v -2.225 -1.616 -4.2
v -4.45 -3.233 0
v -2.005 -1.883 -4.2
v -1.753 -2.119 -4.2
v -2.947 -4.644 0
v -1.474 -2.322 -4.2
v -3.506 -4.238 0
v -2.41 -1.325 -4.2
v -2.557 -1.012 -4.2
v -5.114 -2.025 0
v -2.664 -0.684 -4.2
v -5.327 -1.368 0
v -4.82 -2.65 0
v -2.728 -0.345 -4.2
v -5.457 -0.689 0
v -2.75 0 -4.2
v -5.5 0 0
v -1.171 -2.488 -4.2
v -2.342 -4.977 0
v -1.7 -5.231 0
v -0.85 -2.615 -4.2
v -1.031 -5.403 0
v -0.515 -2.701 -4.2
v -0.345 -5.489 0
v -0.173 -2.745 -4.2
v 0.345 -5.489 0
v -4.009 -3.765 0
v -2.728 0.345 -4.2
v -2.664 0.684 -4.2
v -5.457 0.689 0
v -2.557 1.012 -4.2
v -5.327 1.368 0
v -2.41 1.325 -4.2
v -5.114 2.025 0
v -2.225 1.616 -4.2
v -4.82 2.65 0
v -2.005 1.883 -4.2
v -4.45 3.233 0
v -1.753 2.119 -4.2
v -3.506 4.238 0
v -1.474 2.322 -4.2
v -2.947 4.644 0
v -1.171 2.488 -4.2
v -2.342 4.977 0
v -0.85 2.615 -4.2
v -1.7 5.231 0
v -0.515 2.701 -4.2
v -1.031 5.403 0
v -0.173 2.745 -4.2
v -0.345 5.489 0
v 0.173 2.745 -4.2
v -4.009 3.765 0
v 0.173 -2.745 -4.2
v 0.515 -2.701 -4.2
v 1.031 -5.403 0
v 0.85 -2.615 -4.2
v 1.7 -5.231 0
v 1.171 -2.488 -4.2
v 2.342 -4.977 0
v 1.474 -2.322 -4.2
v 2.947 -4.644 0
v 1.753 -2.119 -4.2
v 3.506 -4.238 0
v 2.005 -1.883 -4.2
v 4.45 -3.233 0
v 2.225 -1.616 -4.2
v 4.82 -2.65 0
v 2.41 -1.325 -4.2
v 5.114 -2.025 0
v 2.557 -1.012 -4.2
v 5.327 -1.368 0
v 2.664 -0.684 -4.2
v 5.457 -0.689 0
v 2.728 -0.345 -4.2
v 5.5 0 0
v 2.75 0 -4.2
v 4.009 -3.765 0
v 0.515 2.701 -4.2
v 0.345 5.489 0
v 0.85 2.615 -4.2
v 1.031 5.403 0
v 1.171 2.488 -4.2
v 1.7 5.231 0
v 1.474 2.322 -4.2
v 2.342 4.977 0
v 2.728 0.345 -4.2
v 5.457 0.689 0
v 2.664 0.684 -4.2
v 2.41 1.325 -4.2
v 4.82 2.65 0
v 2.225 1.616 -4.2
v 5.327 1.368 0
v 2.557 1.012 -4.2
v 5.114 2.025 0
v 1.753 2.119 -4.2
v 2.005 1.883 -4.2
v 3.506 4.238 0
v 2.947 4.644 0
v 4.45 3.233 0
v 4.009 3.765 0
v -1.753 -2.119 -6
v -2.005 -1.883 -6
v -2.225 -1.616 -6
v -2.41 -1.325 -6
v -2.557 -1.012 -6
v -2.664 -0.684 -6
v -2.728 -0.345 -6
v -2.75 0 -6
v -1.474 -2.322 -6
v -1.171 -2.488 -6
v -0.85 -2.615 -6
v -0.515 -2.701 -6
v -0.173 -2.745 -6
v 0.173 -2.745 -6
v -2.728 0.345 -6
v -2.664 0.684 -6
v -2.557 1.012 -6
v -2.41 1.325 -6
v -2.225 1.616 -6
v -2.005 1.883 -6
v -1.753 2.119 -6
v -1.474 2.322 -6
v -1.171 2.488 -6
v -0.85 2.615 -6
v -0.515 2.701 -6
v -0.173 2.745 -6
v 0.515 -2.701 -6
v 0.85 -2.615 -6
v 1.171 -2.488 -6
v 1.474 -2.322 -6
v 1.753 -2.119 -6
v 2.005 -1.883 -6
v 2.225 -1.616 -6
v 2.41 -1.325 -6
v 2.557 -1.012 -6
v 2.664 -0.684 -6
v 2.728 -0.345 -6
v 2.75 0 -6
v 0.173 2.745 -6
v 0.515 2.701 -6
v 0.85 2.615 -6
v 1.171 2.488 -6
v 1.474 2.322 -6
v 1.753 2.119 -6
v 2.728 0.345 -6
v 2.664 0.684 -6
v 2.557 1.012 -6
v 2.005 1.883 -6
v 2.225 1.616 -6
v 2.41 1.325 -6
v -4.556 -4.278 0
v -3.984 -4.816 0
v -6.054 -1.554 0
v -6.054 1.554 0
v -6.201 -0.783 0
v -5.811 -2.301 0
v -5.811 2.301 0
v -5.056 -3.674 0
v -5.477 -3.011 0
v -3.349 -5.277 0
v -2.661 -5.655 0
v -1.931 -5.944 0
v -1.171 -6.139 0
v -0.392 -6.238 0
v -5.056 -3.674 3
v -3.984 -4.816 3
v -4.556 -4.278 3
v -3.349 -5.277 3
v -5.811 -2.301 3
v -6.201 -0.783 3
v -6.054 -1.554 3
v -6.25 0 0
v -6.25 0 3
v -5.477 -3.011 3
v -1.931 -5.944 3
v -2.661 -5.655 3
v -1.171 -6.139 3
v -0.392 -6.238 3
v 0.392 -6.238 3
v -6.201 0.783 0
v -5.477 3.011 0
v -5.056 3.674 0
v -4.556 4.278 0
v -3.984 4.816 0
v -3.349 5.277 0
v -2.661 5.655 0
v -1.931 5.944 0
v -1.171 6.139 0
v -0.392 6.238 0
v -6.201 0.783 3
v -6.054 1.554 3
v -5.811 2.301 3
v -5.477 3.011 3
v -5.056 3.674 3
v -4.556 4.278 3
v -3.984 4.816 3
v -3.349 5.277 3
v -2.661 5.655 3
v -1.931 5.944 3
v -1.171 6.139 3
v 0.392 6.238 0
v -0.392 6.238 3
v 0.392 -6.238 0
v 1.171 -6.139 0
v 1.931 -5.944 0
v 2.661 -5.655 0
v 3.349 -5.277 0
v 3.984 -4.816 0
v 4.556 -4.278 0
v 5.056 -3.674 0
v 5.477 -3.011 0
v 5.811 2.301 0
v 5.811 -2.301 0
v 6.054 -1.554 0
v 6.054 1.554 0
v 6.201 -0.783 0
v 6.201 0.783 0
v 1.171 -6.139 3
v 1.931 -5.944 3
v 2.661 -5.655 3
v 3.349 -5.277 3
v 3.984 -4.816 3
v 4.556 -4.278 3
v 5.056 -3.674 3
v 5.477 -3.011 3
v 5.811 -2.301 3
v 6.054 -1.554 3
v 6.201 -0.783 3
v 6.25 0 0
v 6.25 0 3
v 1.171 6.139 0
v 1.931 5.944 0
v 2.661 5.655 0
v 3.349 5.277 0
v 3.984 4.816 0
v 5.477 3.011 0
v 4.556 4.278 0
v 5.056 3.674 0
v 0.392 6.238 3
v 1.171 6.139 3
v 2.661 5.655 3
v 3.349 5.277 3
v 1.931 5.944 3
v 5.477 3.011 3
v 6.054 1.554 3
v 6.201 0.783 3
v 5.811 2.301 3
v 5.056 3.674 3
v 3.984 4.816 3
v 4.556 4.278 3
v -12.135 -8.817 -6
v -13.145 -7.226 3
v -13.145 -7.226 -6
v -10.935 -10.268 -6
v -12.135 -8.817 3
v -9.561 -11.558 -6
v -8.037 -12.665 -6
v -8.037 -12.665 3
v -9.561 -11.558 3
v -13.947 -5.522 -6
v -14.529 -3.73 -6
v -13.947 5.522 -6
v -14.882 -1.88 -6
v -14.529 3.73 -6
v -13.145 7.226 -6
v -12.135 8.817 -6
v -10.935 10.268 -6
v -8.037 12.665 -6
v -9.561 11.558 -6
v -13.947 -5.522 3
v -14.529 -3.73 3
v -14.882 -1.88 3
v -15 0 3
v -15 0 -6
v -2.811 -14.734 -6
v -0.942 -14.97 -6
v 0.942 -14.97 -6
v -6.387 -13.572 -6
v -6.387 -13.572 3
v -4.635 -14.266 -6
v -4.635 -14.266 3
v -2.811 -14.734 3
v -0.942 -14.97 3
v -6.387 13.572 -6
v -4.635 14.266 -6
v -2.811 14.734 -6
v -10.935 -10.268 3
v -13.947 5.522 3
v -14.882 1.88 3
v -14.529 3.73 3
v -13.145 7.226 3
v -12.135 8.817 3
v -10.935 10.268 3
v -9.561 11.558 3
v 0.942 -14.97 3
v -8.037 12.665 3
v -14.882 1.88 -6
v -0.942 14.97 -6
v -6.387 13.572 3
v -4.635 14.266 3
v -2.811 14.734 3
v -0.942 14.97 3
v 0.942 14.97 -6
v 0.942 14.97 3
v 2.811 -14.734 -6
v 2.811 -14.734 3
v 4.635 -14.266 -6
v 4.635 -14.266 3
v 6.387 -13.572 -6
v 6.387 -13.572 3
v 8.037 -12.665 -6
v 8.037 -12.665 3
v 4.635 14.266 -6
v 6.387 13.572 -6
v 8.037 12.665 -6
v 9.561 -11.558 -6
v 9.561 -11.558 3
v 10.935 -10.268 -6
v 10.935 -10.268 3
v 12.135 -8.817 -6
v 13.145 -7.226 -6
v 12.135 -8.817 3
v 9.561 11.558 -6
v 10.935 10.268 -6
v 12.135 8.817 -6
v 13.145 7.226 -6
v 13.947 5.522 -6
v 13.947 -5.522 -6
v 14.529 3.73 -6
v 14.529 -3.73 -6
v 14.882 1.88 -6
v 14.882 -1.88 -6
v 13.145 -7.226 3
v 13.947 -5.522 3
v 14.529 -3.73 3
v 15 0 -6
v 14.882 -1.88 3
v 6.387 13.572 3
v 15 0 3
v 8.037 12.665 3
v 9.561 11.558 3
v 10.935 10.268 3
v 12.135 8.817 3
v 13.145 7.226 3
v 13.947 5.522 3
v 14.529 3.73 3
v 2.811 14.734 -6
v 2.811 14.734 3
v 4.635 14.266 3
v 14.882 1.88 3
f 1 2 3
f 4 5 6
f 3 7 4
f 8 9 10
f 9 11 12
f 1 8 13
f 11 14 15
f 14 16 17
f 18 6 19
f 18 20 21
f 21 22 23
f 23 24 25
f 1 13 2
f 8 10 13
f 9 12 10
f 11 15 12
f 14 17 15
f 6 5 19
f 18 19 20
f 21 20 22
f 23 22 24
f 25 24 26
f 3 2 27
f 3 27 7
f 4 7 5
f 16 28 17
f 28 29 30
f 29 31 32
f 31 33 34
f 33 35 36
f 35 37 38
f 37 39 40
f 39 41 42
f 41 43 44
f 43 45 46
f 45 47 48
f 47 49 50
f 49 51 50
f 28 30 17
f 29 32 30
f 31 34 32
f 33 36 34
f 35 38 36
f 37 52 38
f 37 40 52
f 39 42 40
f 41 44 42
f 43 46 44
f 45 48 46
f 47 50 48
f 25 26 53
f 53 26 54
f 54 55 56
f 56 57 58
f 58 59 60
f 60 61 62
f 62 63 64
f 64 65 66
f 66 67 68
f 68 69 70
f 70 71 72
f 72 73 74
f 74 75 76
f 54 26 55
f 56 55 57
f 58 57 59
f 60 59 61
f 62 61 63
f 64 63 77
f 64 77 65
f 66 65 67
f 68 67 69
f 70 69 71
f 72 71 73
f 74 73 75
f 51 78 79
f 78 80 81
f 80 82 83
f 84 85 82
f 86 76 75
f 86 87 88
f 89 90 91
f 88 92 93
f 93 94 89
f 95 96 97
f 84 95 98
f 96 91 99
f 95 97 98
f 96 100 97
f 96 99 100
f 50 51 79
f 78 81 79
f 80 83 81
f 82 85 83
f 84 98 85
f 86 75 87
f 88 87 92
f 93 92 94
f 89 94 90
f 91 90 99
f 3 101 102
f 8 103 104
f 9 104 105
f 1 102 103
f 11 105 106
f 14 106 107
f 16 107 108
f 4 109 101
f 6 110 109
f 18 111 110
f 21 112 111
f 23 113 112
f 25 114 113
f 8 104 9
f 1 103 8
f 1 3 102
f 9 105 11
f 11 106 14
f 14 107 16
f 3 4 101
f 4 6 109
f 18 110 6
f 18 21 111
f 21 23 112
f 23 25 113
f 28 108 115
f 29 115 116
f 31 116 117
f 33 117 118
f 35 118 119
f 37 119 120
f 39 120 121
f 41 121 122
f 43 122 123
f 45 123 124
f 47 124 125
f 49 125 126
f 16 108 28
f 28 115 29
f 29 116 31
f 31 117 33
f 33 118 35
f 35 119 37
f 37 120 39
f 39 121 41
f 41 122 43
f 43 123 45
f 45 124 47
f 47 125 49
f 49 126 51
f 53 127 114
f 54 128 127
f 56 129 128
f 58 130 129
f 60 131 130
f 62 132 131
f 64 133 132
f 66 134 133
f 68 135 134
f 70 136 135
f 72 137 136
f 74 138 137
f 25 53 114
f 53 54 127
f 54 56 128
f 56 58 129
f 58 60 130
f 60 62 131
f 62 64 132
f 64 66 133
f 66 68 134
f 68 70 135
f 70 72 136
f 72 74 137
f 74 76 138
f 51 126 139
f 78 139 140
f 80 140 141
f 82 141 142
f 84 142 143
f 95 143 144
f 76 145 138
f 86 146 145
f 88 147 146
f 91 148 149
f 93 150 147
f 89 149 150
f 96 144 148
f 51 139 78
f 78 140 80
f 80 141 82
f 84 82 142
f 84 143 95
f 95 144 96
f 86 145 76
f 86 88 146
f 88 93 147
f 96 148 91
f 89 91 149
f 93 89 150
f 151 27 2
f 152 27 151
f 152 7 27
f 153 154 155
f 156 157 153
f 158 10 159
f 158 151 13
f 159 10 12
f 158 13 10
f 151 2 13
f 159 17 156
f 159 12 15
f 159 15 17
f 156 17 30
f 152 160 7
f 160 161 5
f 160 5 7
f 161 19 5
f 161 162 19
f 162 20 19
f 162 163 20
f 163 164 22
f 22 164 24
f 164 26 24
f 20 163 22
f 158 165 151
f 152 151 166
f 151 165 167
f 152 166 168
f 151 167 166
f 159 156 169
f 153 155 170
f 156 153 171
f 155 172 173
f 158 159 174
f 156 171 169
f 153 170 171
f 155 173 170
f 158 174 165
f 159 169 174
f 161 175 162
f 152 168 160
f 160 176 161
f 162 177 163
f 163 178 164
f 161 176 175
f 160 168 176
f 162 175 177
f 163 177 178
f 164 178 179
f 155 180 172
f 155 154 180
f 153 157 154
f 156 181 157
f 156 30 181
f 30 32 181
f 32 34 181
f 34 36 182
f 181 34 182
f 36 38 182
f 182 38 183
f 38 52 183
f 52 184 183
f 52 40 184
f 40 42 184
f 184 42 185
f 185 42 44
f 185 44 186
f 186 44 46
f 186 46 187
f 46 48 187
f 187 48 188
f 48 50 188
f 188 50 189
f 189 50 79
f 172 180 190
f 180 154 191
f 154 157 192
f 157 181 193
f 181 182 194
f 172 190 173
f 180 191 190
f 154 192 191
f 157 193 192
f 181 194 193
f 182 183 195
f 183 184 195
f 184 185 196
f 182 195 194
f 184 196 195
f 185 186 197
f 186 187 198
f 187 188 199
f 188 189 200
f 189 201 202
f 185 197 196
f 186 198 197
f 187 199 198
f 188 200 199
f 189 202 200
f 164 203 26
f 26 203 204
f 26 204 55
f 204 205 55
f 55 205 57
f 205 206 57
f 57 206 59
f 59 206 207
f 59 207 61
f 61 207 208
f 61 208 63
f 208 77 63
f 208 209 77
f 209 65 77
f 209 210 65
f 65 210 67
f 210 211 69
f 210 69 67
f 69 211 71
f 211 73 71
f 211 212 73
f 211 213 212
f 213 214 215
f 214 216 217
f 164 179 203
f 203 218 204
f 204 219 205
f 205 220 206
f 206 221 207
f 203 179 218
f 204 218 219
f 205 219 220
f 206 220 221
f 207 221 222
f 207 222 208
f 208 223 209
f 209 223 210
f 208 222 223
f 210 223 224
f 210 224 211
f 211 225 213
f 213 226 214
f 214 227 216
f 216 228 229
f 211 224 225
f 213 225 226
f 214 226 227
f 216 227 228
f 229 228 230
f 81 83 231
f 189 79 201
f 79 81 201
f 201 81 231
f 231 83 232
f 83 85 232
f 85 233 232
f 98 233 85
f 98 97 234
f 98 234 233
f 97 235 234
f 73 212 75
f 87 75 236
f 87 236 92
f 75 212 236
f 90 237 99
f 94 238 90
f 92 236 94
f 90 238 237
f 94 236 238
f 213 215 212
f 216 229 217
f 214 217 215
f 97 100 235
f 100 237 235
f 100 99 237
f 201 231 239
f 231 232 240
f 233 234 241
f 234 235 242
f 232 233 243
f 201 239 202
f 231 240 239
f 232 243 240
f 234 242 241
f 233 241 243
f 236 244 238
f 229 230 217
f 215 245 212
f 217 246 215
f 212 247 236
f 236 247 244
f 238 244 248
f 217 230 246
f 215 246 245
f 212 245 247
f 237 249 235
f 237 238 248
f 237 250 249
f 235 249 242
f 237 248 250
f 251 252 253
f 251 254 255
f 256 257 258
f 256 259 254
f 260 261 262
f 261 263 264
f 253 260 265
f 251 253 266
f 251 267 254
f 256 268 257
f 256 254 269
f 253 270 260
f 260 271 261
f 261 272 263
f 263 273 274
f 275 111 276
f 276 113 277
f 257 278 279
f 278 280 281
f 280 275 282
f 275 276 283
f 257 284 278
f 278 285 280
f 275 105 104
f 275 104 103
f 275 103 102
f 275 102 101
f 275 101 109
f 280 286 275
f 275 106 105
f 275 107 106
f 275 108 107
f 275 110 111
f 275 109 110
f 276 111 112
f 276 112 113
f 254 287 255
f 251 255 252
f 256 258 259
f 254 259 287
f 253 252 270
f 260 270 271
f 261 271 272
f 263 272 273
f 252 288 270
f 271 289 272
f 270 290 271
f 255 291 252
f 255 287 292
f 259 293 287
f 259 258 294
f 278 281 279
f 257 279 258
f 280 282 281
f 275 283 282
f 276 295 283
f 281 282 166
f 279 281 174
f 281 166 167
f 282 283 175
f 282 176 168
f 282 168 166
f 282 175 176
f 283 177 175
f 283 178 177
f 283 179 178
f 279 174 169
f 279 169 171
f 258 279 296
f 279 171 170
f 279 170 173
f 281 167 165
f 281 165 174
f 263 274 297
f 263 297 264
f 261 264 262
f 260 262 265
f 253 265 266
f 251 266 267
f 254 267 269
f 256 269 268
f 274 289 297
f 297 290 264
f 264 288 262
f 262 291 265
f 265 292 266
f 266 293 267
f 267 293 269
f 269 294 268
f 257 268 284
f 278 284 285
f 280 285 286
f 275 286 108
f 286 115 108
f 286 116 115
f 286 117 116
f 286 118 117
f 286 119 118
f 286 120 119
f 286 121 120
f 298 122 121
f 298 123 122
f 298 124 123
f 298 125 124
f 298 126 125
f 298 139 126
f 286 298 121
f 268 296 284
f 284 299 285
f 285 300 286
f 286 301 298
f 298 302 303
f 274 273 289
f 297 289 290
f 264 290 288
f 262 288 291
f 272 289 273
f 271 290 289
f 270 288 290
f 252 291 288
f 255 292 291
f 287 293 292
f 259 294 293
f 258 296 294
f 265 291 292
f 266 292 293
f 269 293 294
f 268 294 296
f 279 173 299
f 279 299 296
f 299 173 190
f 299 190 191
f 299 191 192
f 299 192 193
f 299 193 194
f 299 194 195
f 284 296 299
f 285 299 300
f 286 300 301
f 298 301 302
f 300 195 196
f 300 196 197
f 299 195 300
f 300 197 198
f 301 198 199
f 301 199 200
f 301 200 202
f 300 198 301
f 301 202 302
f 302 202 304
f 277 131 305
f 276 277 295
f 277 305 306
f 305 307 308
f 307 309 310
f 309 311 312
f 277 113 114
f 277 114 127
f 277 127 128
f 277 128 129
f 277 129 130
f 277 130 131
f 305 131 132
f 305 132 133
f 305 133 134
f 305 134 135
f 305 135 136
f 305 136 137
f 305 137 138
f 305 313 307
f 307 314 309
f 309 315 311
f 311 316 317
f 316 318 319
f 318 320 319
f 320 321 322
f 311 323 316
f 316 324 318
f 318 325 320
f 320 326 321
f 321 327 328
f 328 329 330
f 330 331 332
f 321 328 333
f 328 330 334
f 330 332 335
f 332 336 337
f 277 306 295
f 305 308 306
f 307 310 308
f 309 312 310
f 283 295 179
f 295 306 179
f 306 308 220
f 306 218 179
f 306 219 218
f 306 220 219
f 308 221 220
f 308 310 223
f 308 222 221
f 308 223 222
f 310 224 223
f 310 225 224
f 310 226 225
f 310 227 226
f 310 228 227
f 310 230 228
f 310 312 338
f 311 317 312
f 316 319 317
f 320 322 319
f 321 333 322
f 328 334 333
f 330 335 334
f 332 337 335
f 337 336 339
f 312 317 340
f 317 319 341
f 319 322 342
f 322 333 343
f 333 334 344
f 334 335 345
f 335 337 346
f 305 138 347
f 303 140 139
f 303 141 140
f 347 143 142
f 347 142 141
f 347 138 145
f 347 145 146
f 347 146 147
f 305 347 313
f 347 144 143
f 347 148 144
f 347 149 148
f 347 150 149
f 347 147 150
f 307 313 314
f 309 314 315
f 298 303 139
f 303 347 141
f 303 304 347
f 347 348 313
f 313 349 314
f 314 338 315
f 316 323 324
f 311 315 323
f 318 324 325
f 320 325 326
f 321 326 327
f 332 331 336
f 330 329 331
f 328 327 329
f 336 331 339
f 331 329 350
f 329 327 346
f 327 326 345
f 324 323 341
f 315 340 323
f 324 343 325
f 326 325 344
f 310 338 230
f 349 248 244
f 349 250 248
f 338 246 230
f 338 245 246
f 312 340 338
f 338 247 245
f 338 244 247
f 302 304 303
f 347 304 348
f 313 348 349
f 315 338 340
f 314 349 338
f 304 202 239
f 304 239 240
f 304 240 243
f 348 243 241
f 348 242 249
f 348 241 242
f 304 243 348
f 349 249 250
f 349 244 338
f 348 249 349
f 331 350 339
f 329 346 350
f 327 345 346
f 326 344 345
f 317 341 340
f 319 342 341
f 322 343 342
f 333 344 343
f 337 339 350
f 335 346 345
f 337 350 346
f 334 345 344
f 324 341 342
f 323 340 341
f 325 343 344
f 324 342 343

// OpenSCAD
$fn = 50;


difference() {
	union() {
		translate(v = [0, 0, -6.0000000000]) {
			cylinder(h = 9, r = 15.0000000000);
		}
	}
	union() {
		translate(v = [0, 0, 0]) {
			rotate(a = [0, 0, 0]) {
				difference() {
					union() {
						translate(v = [0, 0, -9.0000000000]) {
							cylinder(h = 9, r = 2.2500000000);
						}
						translate(v = [0, 0, -4.2000000000]) {
							cylinder(h = 4.2000000000, r1 = 2.7500000000, r2 = 5.5000000000);
						}
						translate(v = [0, 0, -9.0000000000]) {
							cylinder(h = 9, r = 2.7500000000);
						}
						translate(v = [0, 0, -9.0000000000]) {
							cylinder(h = 9, r = 2.2500000000);
						}
					}
					union();
				}
			}
		}
		#cylinder(h = 3, r = 6.2500000000);
	}
}
